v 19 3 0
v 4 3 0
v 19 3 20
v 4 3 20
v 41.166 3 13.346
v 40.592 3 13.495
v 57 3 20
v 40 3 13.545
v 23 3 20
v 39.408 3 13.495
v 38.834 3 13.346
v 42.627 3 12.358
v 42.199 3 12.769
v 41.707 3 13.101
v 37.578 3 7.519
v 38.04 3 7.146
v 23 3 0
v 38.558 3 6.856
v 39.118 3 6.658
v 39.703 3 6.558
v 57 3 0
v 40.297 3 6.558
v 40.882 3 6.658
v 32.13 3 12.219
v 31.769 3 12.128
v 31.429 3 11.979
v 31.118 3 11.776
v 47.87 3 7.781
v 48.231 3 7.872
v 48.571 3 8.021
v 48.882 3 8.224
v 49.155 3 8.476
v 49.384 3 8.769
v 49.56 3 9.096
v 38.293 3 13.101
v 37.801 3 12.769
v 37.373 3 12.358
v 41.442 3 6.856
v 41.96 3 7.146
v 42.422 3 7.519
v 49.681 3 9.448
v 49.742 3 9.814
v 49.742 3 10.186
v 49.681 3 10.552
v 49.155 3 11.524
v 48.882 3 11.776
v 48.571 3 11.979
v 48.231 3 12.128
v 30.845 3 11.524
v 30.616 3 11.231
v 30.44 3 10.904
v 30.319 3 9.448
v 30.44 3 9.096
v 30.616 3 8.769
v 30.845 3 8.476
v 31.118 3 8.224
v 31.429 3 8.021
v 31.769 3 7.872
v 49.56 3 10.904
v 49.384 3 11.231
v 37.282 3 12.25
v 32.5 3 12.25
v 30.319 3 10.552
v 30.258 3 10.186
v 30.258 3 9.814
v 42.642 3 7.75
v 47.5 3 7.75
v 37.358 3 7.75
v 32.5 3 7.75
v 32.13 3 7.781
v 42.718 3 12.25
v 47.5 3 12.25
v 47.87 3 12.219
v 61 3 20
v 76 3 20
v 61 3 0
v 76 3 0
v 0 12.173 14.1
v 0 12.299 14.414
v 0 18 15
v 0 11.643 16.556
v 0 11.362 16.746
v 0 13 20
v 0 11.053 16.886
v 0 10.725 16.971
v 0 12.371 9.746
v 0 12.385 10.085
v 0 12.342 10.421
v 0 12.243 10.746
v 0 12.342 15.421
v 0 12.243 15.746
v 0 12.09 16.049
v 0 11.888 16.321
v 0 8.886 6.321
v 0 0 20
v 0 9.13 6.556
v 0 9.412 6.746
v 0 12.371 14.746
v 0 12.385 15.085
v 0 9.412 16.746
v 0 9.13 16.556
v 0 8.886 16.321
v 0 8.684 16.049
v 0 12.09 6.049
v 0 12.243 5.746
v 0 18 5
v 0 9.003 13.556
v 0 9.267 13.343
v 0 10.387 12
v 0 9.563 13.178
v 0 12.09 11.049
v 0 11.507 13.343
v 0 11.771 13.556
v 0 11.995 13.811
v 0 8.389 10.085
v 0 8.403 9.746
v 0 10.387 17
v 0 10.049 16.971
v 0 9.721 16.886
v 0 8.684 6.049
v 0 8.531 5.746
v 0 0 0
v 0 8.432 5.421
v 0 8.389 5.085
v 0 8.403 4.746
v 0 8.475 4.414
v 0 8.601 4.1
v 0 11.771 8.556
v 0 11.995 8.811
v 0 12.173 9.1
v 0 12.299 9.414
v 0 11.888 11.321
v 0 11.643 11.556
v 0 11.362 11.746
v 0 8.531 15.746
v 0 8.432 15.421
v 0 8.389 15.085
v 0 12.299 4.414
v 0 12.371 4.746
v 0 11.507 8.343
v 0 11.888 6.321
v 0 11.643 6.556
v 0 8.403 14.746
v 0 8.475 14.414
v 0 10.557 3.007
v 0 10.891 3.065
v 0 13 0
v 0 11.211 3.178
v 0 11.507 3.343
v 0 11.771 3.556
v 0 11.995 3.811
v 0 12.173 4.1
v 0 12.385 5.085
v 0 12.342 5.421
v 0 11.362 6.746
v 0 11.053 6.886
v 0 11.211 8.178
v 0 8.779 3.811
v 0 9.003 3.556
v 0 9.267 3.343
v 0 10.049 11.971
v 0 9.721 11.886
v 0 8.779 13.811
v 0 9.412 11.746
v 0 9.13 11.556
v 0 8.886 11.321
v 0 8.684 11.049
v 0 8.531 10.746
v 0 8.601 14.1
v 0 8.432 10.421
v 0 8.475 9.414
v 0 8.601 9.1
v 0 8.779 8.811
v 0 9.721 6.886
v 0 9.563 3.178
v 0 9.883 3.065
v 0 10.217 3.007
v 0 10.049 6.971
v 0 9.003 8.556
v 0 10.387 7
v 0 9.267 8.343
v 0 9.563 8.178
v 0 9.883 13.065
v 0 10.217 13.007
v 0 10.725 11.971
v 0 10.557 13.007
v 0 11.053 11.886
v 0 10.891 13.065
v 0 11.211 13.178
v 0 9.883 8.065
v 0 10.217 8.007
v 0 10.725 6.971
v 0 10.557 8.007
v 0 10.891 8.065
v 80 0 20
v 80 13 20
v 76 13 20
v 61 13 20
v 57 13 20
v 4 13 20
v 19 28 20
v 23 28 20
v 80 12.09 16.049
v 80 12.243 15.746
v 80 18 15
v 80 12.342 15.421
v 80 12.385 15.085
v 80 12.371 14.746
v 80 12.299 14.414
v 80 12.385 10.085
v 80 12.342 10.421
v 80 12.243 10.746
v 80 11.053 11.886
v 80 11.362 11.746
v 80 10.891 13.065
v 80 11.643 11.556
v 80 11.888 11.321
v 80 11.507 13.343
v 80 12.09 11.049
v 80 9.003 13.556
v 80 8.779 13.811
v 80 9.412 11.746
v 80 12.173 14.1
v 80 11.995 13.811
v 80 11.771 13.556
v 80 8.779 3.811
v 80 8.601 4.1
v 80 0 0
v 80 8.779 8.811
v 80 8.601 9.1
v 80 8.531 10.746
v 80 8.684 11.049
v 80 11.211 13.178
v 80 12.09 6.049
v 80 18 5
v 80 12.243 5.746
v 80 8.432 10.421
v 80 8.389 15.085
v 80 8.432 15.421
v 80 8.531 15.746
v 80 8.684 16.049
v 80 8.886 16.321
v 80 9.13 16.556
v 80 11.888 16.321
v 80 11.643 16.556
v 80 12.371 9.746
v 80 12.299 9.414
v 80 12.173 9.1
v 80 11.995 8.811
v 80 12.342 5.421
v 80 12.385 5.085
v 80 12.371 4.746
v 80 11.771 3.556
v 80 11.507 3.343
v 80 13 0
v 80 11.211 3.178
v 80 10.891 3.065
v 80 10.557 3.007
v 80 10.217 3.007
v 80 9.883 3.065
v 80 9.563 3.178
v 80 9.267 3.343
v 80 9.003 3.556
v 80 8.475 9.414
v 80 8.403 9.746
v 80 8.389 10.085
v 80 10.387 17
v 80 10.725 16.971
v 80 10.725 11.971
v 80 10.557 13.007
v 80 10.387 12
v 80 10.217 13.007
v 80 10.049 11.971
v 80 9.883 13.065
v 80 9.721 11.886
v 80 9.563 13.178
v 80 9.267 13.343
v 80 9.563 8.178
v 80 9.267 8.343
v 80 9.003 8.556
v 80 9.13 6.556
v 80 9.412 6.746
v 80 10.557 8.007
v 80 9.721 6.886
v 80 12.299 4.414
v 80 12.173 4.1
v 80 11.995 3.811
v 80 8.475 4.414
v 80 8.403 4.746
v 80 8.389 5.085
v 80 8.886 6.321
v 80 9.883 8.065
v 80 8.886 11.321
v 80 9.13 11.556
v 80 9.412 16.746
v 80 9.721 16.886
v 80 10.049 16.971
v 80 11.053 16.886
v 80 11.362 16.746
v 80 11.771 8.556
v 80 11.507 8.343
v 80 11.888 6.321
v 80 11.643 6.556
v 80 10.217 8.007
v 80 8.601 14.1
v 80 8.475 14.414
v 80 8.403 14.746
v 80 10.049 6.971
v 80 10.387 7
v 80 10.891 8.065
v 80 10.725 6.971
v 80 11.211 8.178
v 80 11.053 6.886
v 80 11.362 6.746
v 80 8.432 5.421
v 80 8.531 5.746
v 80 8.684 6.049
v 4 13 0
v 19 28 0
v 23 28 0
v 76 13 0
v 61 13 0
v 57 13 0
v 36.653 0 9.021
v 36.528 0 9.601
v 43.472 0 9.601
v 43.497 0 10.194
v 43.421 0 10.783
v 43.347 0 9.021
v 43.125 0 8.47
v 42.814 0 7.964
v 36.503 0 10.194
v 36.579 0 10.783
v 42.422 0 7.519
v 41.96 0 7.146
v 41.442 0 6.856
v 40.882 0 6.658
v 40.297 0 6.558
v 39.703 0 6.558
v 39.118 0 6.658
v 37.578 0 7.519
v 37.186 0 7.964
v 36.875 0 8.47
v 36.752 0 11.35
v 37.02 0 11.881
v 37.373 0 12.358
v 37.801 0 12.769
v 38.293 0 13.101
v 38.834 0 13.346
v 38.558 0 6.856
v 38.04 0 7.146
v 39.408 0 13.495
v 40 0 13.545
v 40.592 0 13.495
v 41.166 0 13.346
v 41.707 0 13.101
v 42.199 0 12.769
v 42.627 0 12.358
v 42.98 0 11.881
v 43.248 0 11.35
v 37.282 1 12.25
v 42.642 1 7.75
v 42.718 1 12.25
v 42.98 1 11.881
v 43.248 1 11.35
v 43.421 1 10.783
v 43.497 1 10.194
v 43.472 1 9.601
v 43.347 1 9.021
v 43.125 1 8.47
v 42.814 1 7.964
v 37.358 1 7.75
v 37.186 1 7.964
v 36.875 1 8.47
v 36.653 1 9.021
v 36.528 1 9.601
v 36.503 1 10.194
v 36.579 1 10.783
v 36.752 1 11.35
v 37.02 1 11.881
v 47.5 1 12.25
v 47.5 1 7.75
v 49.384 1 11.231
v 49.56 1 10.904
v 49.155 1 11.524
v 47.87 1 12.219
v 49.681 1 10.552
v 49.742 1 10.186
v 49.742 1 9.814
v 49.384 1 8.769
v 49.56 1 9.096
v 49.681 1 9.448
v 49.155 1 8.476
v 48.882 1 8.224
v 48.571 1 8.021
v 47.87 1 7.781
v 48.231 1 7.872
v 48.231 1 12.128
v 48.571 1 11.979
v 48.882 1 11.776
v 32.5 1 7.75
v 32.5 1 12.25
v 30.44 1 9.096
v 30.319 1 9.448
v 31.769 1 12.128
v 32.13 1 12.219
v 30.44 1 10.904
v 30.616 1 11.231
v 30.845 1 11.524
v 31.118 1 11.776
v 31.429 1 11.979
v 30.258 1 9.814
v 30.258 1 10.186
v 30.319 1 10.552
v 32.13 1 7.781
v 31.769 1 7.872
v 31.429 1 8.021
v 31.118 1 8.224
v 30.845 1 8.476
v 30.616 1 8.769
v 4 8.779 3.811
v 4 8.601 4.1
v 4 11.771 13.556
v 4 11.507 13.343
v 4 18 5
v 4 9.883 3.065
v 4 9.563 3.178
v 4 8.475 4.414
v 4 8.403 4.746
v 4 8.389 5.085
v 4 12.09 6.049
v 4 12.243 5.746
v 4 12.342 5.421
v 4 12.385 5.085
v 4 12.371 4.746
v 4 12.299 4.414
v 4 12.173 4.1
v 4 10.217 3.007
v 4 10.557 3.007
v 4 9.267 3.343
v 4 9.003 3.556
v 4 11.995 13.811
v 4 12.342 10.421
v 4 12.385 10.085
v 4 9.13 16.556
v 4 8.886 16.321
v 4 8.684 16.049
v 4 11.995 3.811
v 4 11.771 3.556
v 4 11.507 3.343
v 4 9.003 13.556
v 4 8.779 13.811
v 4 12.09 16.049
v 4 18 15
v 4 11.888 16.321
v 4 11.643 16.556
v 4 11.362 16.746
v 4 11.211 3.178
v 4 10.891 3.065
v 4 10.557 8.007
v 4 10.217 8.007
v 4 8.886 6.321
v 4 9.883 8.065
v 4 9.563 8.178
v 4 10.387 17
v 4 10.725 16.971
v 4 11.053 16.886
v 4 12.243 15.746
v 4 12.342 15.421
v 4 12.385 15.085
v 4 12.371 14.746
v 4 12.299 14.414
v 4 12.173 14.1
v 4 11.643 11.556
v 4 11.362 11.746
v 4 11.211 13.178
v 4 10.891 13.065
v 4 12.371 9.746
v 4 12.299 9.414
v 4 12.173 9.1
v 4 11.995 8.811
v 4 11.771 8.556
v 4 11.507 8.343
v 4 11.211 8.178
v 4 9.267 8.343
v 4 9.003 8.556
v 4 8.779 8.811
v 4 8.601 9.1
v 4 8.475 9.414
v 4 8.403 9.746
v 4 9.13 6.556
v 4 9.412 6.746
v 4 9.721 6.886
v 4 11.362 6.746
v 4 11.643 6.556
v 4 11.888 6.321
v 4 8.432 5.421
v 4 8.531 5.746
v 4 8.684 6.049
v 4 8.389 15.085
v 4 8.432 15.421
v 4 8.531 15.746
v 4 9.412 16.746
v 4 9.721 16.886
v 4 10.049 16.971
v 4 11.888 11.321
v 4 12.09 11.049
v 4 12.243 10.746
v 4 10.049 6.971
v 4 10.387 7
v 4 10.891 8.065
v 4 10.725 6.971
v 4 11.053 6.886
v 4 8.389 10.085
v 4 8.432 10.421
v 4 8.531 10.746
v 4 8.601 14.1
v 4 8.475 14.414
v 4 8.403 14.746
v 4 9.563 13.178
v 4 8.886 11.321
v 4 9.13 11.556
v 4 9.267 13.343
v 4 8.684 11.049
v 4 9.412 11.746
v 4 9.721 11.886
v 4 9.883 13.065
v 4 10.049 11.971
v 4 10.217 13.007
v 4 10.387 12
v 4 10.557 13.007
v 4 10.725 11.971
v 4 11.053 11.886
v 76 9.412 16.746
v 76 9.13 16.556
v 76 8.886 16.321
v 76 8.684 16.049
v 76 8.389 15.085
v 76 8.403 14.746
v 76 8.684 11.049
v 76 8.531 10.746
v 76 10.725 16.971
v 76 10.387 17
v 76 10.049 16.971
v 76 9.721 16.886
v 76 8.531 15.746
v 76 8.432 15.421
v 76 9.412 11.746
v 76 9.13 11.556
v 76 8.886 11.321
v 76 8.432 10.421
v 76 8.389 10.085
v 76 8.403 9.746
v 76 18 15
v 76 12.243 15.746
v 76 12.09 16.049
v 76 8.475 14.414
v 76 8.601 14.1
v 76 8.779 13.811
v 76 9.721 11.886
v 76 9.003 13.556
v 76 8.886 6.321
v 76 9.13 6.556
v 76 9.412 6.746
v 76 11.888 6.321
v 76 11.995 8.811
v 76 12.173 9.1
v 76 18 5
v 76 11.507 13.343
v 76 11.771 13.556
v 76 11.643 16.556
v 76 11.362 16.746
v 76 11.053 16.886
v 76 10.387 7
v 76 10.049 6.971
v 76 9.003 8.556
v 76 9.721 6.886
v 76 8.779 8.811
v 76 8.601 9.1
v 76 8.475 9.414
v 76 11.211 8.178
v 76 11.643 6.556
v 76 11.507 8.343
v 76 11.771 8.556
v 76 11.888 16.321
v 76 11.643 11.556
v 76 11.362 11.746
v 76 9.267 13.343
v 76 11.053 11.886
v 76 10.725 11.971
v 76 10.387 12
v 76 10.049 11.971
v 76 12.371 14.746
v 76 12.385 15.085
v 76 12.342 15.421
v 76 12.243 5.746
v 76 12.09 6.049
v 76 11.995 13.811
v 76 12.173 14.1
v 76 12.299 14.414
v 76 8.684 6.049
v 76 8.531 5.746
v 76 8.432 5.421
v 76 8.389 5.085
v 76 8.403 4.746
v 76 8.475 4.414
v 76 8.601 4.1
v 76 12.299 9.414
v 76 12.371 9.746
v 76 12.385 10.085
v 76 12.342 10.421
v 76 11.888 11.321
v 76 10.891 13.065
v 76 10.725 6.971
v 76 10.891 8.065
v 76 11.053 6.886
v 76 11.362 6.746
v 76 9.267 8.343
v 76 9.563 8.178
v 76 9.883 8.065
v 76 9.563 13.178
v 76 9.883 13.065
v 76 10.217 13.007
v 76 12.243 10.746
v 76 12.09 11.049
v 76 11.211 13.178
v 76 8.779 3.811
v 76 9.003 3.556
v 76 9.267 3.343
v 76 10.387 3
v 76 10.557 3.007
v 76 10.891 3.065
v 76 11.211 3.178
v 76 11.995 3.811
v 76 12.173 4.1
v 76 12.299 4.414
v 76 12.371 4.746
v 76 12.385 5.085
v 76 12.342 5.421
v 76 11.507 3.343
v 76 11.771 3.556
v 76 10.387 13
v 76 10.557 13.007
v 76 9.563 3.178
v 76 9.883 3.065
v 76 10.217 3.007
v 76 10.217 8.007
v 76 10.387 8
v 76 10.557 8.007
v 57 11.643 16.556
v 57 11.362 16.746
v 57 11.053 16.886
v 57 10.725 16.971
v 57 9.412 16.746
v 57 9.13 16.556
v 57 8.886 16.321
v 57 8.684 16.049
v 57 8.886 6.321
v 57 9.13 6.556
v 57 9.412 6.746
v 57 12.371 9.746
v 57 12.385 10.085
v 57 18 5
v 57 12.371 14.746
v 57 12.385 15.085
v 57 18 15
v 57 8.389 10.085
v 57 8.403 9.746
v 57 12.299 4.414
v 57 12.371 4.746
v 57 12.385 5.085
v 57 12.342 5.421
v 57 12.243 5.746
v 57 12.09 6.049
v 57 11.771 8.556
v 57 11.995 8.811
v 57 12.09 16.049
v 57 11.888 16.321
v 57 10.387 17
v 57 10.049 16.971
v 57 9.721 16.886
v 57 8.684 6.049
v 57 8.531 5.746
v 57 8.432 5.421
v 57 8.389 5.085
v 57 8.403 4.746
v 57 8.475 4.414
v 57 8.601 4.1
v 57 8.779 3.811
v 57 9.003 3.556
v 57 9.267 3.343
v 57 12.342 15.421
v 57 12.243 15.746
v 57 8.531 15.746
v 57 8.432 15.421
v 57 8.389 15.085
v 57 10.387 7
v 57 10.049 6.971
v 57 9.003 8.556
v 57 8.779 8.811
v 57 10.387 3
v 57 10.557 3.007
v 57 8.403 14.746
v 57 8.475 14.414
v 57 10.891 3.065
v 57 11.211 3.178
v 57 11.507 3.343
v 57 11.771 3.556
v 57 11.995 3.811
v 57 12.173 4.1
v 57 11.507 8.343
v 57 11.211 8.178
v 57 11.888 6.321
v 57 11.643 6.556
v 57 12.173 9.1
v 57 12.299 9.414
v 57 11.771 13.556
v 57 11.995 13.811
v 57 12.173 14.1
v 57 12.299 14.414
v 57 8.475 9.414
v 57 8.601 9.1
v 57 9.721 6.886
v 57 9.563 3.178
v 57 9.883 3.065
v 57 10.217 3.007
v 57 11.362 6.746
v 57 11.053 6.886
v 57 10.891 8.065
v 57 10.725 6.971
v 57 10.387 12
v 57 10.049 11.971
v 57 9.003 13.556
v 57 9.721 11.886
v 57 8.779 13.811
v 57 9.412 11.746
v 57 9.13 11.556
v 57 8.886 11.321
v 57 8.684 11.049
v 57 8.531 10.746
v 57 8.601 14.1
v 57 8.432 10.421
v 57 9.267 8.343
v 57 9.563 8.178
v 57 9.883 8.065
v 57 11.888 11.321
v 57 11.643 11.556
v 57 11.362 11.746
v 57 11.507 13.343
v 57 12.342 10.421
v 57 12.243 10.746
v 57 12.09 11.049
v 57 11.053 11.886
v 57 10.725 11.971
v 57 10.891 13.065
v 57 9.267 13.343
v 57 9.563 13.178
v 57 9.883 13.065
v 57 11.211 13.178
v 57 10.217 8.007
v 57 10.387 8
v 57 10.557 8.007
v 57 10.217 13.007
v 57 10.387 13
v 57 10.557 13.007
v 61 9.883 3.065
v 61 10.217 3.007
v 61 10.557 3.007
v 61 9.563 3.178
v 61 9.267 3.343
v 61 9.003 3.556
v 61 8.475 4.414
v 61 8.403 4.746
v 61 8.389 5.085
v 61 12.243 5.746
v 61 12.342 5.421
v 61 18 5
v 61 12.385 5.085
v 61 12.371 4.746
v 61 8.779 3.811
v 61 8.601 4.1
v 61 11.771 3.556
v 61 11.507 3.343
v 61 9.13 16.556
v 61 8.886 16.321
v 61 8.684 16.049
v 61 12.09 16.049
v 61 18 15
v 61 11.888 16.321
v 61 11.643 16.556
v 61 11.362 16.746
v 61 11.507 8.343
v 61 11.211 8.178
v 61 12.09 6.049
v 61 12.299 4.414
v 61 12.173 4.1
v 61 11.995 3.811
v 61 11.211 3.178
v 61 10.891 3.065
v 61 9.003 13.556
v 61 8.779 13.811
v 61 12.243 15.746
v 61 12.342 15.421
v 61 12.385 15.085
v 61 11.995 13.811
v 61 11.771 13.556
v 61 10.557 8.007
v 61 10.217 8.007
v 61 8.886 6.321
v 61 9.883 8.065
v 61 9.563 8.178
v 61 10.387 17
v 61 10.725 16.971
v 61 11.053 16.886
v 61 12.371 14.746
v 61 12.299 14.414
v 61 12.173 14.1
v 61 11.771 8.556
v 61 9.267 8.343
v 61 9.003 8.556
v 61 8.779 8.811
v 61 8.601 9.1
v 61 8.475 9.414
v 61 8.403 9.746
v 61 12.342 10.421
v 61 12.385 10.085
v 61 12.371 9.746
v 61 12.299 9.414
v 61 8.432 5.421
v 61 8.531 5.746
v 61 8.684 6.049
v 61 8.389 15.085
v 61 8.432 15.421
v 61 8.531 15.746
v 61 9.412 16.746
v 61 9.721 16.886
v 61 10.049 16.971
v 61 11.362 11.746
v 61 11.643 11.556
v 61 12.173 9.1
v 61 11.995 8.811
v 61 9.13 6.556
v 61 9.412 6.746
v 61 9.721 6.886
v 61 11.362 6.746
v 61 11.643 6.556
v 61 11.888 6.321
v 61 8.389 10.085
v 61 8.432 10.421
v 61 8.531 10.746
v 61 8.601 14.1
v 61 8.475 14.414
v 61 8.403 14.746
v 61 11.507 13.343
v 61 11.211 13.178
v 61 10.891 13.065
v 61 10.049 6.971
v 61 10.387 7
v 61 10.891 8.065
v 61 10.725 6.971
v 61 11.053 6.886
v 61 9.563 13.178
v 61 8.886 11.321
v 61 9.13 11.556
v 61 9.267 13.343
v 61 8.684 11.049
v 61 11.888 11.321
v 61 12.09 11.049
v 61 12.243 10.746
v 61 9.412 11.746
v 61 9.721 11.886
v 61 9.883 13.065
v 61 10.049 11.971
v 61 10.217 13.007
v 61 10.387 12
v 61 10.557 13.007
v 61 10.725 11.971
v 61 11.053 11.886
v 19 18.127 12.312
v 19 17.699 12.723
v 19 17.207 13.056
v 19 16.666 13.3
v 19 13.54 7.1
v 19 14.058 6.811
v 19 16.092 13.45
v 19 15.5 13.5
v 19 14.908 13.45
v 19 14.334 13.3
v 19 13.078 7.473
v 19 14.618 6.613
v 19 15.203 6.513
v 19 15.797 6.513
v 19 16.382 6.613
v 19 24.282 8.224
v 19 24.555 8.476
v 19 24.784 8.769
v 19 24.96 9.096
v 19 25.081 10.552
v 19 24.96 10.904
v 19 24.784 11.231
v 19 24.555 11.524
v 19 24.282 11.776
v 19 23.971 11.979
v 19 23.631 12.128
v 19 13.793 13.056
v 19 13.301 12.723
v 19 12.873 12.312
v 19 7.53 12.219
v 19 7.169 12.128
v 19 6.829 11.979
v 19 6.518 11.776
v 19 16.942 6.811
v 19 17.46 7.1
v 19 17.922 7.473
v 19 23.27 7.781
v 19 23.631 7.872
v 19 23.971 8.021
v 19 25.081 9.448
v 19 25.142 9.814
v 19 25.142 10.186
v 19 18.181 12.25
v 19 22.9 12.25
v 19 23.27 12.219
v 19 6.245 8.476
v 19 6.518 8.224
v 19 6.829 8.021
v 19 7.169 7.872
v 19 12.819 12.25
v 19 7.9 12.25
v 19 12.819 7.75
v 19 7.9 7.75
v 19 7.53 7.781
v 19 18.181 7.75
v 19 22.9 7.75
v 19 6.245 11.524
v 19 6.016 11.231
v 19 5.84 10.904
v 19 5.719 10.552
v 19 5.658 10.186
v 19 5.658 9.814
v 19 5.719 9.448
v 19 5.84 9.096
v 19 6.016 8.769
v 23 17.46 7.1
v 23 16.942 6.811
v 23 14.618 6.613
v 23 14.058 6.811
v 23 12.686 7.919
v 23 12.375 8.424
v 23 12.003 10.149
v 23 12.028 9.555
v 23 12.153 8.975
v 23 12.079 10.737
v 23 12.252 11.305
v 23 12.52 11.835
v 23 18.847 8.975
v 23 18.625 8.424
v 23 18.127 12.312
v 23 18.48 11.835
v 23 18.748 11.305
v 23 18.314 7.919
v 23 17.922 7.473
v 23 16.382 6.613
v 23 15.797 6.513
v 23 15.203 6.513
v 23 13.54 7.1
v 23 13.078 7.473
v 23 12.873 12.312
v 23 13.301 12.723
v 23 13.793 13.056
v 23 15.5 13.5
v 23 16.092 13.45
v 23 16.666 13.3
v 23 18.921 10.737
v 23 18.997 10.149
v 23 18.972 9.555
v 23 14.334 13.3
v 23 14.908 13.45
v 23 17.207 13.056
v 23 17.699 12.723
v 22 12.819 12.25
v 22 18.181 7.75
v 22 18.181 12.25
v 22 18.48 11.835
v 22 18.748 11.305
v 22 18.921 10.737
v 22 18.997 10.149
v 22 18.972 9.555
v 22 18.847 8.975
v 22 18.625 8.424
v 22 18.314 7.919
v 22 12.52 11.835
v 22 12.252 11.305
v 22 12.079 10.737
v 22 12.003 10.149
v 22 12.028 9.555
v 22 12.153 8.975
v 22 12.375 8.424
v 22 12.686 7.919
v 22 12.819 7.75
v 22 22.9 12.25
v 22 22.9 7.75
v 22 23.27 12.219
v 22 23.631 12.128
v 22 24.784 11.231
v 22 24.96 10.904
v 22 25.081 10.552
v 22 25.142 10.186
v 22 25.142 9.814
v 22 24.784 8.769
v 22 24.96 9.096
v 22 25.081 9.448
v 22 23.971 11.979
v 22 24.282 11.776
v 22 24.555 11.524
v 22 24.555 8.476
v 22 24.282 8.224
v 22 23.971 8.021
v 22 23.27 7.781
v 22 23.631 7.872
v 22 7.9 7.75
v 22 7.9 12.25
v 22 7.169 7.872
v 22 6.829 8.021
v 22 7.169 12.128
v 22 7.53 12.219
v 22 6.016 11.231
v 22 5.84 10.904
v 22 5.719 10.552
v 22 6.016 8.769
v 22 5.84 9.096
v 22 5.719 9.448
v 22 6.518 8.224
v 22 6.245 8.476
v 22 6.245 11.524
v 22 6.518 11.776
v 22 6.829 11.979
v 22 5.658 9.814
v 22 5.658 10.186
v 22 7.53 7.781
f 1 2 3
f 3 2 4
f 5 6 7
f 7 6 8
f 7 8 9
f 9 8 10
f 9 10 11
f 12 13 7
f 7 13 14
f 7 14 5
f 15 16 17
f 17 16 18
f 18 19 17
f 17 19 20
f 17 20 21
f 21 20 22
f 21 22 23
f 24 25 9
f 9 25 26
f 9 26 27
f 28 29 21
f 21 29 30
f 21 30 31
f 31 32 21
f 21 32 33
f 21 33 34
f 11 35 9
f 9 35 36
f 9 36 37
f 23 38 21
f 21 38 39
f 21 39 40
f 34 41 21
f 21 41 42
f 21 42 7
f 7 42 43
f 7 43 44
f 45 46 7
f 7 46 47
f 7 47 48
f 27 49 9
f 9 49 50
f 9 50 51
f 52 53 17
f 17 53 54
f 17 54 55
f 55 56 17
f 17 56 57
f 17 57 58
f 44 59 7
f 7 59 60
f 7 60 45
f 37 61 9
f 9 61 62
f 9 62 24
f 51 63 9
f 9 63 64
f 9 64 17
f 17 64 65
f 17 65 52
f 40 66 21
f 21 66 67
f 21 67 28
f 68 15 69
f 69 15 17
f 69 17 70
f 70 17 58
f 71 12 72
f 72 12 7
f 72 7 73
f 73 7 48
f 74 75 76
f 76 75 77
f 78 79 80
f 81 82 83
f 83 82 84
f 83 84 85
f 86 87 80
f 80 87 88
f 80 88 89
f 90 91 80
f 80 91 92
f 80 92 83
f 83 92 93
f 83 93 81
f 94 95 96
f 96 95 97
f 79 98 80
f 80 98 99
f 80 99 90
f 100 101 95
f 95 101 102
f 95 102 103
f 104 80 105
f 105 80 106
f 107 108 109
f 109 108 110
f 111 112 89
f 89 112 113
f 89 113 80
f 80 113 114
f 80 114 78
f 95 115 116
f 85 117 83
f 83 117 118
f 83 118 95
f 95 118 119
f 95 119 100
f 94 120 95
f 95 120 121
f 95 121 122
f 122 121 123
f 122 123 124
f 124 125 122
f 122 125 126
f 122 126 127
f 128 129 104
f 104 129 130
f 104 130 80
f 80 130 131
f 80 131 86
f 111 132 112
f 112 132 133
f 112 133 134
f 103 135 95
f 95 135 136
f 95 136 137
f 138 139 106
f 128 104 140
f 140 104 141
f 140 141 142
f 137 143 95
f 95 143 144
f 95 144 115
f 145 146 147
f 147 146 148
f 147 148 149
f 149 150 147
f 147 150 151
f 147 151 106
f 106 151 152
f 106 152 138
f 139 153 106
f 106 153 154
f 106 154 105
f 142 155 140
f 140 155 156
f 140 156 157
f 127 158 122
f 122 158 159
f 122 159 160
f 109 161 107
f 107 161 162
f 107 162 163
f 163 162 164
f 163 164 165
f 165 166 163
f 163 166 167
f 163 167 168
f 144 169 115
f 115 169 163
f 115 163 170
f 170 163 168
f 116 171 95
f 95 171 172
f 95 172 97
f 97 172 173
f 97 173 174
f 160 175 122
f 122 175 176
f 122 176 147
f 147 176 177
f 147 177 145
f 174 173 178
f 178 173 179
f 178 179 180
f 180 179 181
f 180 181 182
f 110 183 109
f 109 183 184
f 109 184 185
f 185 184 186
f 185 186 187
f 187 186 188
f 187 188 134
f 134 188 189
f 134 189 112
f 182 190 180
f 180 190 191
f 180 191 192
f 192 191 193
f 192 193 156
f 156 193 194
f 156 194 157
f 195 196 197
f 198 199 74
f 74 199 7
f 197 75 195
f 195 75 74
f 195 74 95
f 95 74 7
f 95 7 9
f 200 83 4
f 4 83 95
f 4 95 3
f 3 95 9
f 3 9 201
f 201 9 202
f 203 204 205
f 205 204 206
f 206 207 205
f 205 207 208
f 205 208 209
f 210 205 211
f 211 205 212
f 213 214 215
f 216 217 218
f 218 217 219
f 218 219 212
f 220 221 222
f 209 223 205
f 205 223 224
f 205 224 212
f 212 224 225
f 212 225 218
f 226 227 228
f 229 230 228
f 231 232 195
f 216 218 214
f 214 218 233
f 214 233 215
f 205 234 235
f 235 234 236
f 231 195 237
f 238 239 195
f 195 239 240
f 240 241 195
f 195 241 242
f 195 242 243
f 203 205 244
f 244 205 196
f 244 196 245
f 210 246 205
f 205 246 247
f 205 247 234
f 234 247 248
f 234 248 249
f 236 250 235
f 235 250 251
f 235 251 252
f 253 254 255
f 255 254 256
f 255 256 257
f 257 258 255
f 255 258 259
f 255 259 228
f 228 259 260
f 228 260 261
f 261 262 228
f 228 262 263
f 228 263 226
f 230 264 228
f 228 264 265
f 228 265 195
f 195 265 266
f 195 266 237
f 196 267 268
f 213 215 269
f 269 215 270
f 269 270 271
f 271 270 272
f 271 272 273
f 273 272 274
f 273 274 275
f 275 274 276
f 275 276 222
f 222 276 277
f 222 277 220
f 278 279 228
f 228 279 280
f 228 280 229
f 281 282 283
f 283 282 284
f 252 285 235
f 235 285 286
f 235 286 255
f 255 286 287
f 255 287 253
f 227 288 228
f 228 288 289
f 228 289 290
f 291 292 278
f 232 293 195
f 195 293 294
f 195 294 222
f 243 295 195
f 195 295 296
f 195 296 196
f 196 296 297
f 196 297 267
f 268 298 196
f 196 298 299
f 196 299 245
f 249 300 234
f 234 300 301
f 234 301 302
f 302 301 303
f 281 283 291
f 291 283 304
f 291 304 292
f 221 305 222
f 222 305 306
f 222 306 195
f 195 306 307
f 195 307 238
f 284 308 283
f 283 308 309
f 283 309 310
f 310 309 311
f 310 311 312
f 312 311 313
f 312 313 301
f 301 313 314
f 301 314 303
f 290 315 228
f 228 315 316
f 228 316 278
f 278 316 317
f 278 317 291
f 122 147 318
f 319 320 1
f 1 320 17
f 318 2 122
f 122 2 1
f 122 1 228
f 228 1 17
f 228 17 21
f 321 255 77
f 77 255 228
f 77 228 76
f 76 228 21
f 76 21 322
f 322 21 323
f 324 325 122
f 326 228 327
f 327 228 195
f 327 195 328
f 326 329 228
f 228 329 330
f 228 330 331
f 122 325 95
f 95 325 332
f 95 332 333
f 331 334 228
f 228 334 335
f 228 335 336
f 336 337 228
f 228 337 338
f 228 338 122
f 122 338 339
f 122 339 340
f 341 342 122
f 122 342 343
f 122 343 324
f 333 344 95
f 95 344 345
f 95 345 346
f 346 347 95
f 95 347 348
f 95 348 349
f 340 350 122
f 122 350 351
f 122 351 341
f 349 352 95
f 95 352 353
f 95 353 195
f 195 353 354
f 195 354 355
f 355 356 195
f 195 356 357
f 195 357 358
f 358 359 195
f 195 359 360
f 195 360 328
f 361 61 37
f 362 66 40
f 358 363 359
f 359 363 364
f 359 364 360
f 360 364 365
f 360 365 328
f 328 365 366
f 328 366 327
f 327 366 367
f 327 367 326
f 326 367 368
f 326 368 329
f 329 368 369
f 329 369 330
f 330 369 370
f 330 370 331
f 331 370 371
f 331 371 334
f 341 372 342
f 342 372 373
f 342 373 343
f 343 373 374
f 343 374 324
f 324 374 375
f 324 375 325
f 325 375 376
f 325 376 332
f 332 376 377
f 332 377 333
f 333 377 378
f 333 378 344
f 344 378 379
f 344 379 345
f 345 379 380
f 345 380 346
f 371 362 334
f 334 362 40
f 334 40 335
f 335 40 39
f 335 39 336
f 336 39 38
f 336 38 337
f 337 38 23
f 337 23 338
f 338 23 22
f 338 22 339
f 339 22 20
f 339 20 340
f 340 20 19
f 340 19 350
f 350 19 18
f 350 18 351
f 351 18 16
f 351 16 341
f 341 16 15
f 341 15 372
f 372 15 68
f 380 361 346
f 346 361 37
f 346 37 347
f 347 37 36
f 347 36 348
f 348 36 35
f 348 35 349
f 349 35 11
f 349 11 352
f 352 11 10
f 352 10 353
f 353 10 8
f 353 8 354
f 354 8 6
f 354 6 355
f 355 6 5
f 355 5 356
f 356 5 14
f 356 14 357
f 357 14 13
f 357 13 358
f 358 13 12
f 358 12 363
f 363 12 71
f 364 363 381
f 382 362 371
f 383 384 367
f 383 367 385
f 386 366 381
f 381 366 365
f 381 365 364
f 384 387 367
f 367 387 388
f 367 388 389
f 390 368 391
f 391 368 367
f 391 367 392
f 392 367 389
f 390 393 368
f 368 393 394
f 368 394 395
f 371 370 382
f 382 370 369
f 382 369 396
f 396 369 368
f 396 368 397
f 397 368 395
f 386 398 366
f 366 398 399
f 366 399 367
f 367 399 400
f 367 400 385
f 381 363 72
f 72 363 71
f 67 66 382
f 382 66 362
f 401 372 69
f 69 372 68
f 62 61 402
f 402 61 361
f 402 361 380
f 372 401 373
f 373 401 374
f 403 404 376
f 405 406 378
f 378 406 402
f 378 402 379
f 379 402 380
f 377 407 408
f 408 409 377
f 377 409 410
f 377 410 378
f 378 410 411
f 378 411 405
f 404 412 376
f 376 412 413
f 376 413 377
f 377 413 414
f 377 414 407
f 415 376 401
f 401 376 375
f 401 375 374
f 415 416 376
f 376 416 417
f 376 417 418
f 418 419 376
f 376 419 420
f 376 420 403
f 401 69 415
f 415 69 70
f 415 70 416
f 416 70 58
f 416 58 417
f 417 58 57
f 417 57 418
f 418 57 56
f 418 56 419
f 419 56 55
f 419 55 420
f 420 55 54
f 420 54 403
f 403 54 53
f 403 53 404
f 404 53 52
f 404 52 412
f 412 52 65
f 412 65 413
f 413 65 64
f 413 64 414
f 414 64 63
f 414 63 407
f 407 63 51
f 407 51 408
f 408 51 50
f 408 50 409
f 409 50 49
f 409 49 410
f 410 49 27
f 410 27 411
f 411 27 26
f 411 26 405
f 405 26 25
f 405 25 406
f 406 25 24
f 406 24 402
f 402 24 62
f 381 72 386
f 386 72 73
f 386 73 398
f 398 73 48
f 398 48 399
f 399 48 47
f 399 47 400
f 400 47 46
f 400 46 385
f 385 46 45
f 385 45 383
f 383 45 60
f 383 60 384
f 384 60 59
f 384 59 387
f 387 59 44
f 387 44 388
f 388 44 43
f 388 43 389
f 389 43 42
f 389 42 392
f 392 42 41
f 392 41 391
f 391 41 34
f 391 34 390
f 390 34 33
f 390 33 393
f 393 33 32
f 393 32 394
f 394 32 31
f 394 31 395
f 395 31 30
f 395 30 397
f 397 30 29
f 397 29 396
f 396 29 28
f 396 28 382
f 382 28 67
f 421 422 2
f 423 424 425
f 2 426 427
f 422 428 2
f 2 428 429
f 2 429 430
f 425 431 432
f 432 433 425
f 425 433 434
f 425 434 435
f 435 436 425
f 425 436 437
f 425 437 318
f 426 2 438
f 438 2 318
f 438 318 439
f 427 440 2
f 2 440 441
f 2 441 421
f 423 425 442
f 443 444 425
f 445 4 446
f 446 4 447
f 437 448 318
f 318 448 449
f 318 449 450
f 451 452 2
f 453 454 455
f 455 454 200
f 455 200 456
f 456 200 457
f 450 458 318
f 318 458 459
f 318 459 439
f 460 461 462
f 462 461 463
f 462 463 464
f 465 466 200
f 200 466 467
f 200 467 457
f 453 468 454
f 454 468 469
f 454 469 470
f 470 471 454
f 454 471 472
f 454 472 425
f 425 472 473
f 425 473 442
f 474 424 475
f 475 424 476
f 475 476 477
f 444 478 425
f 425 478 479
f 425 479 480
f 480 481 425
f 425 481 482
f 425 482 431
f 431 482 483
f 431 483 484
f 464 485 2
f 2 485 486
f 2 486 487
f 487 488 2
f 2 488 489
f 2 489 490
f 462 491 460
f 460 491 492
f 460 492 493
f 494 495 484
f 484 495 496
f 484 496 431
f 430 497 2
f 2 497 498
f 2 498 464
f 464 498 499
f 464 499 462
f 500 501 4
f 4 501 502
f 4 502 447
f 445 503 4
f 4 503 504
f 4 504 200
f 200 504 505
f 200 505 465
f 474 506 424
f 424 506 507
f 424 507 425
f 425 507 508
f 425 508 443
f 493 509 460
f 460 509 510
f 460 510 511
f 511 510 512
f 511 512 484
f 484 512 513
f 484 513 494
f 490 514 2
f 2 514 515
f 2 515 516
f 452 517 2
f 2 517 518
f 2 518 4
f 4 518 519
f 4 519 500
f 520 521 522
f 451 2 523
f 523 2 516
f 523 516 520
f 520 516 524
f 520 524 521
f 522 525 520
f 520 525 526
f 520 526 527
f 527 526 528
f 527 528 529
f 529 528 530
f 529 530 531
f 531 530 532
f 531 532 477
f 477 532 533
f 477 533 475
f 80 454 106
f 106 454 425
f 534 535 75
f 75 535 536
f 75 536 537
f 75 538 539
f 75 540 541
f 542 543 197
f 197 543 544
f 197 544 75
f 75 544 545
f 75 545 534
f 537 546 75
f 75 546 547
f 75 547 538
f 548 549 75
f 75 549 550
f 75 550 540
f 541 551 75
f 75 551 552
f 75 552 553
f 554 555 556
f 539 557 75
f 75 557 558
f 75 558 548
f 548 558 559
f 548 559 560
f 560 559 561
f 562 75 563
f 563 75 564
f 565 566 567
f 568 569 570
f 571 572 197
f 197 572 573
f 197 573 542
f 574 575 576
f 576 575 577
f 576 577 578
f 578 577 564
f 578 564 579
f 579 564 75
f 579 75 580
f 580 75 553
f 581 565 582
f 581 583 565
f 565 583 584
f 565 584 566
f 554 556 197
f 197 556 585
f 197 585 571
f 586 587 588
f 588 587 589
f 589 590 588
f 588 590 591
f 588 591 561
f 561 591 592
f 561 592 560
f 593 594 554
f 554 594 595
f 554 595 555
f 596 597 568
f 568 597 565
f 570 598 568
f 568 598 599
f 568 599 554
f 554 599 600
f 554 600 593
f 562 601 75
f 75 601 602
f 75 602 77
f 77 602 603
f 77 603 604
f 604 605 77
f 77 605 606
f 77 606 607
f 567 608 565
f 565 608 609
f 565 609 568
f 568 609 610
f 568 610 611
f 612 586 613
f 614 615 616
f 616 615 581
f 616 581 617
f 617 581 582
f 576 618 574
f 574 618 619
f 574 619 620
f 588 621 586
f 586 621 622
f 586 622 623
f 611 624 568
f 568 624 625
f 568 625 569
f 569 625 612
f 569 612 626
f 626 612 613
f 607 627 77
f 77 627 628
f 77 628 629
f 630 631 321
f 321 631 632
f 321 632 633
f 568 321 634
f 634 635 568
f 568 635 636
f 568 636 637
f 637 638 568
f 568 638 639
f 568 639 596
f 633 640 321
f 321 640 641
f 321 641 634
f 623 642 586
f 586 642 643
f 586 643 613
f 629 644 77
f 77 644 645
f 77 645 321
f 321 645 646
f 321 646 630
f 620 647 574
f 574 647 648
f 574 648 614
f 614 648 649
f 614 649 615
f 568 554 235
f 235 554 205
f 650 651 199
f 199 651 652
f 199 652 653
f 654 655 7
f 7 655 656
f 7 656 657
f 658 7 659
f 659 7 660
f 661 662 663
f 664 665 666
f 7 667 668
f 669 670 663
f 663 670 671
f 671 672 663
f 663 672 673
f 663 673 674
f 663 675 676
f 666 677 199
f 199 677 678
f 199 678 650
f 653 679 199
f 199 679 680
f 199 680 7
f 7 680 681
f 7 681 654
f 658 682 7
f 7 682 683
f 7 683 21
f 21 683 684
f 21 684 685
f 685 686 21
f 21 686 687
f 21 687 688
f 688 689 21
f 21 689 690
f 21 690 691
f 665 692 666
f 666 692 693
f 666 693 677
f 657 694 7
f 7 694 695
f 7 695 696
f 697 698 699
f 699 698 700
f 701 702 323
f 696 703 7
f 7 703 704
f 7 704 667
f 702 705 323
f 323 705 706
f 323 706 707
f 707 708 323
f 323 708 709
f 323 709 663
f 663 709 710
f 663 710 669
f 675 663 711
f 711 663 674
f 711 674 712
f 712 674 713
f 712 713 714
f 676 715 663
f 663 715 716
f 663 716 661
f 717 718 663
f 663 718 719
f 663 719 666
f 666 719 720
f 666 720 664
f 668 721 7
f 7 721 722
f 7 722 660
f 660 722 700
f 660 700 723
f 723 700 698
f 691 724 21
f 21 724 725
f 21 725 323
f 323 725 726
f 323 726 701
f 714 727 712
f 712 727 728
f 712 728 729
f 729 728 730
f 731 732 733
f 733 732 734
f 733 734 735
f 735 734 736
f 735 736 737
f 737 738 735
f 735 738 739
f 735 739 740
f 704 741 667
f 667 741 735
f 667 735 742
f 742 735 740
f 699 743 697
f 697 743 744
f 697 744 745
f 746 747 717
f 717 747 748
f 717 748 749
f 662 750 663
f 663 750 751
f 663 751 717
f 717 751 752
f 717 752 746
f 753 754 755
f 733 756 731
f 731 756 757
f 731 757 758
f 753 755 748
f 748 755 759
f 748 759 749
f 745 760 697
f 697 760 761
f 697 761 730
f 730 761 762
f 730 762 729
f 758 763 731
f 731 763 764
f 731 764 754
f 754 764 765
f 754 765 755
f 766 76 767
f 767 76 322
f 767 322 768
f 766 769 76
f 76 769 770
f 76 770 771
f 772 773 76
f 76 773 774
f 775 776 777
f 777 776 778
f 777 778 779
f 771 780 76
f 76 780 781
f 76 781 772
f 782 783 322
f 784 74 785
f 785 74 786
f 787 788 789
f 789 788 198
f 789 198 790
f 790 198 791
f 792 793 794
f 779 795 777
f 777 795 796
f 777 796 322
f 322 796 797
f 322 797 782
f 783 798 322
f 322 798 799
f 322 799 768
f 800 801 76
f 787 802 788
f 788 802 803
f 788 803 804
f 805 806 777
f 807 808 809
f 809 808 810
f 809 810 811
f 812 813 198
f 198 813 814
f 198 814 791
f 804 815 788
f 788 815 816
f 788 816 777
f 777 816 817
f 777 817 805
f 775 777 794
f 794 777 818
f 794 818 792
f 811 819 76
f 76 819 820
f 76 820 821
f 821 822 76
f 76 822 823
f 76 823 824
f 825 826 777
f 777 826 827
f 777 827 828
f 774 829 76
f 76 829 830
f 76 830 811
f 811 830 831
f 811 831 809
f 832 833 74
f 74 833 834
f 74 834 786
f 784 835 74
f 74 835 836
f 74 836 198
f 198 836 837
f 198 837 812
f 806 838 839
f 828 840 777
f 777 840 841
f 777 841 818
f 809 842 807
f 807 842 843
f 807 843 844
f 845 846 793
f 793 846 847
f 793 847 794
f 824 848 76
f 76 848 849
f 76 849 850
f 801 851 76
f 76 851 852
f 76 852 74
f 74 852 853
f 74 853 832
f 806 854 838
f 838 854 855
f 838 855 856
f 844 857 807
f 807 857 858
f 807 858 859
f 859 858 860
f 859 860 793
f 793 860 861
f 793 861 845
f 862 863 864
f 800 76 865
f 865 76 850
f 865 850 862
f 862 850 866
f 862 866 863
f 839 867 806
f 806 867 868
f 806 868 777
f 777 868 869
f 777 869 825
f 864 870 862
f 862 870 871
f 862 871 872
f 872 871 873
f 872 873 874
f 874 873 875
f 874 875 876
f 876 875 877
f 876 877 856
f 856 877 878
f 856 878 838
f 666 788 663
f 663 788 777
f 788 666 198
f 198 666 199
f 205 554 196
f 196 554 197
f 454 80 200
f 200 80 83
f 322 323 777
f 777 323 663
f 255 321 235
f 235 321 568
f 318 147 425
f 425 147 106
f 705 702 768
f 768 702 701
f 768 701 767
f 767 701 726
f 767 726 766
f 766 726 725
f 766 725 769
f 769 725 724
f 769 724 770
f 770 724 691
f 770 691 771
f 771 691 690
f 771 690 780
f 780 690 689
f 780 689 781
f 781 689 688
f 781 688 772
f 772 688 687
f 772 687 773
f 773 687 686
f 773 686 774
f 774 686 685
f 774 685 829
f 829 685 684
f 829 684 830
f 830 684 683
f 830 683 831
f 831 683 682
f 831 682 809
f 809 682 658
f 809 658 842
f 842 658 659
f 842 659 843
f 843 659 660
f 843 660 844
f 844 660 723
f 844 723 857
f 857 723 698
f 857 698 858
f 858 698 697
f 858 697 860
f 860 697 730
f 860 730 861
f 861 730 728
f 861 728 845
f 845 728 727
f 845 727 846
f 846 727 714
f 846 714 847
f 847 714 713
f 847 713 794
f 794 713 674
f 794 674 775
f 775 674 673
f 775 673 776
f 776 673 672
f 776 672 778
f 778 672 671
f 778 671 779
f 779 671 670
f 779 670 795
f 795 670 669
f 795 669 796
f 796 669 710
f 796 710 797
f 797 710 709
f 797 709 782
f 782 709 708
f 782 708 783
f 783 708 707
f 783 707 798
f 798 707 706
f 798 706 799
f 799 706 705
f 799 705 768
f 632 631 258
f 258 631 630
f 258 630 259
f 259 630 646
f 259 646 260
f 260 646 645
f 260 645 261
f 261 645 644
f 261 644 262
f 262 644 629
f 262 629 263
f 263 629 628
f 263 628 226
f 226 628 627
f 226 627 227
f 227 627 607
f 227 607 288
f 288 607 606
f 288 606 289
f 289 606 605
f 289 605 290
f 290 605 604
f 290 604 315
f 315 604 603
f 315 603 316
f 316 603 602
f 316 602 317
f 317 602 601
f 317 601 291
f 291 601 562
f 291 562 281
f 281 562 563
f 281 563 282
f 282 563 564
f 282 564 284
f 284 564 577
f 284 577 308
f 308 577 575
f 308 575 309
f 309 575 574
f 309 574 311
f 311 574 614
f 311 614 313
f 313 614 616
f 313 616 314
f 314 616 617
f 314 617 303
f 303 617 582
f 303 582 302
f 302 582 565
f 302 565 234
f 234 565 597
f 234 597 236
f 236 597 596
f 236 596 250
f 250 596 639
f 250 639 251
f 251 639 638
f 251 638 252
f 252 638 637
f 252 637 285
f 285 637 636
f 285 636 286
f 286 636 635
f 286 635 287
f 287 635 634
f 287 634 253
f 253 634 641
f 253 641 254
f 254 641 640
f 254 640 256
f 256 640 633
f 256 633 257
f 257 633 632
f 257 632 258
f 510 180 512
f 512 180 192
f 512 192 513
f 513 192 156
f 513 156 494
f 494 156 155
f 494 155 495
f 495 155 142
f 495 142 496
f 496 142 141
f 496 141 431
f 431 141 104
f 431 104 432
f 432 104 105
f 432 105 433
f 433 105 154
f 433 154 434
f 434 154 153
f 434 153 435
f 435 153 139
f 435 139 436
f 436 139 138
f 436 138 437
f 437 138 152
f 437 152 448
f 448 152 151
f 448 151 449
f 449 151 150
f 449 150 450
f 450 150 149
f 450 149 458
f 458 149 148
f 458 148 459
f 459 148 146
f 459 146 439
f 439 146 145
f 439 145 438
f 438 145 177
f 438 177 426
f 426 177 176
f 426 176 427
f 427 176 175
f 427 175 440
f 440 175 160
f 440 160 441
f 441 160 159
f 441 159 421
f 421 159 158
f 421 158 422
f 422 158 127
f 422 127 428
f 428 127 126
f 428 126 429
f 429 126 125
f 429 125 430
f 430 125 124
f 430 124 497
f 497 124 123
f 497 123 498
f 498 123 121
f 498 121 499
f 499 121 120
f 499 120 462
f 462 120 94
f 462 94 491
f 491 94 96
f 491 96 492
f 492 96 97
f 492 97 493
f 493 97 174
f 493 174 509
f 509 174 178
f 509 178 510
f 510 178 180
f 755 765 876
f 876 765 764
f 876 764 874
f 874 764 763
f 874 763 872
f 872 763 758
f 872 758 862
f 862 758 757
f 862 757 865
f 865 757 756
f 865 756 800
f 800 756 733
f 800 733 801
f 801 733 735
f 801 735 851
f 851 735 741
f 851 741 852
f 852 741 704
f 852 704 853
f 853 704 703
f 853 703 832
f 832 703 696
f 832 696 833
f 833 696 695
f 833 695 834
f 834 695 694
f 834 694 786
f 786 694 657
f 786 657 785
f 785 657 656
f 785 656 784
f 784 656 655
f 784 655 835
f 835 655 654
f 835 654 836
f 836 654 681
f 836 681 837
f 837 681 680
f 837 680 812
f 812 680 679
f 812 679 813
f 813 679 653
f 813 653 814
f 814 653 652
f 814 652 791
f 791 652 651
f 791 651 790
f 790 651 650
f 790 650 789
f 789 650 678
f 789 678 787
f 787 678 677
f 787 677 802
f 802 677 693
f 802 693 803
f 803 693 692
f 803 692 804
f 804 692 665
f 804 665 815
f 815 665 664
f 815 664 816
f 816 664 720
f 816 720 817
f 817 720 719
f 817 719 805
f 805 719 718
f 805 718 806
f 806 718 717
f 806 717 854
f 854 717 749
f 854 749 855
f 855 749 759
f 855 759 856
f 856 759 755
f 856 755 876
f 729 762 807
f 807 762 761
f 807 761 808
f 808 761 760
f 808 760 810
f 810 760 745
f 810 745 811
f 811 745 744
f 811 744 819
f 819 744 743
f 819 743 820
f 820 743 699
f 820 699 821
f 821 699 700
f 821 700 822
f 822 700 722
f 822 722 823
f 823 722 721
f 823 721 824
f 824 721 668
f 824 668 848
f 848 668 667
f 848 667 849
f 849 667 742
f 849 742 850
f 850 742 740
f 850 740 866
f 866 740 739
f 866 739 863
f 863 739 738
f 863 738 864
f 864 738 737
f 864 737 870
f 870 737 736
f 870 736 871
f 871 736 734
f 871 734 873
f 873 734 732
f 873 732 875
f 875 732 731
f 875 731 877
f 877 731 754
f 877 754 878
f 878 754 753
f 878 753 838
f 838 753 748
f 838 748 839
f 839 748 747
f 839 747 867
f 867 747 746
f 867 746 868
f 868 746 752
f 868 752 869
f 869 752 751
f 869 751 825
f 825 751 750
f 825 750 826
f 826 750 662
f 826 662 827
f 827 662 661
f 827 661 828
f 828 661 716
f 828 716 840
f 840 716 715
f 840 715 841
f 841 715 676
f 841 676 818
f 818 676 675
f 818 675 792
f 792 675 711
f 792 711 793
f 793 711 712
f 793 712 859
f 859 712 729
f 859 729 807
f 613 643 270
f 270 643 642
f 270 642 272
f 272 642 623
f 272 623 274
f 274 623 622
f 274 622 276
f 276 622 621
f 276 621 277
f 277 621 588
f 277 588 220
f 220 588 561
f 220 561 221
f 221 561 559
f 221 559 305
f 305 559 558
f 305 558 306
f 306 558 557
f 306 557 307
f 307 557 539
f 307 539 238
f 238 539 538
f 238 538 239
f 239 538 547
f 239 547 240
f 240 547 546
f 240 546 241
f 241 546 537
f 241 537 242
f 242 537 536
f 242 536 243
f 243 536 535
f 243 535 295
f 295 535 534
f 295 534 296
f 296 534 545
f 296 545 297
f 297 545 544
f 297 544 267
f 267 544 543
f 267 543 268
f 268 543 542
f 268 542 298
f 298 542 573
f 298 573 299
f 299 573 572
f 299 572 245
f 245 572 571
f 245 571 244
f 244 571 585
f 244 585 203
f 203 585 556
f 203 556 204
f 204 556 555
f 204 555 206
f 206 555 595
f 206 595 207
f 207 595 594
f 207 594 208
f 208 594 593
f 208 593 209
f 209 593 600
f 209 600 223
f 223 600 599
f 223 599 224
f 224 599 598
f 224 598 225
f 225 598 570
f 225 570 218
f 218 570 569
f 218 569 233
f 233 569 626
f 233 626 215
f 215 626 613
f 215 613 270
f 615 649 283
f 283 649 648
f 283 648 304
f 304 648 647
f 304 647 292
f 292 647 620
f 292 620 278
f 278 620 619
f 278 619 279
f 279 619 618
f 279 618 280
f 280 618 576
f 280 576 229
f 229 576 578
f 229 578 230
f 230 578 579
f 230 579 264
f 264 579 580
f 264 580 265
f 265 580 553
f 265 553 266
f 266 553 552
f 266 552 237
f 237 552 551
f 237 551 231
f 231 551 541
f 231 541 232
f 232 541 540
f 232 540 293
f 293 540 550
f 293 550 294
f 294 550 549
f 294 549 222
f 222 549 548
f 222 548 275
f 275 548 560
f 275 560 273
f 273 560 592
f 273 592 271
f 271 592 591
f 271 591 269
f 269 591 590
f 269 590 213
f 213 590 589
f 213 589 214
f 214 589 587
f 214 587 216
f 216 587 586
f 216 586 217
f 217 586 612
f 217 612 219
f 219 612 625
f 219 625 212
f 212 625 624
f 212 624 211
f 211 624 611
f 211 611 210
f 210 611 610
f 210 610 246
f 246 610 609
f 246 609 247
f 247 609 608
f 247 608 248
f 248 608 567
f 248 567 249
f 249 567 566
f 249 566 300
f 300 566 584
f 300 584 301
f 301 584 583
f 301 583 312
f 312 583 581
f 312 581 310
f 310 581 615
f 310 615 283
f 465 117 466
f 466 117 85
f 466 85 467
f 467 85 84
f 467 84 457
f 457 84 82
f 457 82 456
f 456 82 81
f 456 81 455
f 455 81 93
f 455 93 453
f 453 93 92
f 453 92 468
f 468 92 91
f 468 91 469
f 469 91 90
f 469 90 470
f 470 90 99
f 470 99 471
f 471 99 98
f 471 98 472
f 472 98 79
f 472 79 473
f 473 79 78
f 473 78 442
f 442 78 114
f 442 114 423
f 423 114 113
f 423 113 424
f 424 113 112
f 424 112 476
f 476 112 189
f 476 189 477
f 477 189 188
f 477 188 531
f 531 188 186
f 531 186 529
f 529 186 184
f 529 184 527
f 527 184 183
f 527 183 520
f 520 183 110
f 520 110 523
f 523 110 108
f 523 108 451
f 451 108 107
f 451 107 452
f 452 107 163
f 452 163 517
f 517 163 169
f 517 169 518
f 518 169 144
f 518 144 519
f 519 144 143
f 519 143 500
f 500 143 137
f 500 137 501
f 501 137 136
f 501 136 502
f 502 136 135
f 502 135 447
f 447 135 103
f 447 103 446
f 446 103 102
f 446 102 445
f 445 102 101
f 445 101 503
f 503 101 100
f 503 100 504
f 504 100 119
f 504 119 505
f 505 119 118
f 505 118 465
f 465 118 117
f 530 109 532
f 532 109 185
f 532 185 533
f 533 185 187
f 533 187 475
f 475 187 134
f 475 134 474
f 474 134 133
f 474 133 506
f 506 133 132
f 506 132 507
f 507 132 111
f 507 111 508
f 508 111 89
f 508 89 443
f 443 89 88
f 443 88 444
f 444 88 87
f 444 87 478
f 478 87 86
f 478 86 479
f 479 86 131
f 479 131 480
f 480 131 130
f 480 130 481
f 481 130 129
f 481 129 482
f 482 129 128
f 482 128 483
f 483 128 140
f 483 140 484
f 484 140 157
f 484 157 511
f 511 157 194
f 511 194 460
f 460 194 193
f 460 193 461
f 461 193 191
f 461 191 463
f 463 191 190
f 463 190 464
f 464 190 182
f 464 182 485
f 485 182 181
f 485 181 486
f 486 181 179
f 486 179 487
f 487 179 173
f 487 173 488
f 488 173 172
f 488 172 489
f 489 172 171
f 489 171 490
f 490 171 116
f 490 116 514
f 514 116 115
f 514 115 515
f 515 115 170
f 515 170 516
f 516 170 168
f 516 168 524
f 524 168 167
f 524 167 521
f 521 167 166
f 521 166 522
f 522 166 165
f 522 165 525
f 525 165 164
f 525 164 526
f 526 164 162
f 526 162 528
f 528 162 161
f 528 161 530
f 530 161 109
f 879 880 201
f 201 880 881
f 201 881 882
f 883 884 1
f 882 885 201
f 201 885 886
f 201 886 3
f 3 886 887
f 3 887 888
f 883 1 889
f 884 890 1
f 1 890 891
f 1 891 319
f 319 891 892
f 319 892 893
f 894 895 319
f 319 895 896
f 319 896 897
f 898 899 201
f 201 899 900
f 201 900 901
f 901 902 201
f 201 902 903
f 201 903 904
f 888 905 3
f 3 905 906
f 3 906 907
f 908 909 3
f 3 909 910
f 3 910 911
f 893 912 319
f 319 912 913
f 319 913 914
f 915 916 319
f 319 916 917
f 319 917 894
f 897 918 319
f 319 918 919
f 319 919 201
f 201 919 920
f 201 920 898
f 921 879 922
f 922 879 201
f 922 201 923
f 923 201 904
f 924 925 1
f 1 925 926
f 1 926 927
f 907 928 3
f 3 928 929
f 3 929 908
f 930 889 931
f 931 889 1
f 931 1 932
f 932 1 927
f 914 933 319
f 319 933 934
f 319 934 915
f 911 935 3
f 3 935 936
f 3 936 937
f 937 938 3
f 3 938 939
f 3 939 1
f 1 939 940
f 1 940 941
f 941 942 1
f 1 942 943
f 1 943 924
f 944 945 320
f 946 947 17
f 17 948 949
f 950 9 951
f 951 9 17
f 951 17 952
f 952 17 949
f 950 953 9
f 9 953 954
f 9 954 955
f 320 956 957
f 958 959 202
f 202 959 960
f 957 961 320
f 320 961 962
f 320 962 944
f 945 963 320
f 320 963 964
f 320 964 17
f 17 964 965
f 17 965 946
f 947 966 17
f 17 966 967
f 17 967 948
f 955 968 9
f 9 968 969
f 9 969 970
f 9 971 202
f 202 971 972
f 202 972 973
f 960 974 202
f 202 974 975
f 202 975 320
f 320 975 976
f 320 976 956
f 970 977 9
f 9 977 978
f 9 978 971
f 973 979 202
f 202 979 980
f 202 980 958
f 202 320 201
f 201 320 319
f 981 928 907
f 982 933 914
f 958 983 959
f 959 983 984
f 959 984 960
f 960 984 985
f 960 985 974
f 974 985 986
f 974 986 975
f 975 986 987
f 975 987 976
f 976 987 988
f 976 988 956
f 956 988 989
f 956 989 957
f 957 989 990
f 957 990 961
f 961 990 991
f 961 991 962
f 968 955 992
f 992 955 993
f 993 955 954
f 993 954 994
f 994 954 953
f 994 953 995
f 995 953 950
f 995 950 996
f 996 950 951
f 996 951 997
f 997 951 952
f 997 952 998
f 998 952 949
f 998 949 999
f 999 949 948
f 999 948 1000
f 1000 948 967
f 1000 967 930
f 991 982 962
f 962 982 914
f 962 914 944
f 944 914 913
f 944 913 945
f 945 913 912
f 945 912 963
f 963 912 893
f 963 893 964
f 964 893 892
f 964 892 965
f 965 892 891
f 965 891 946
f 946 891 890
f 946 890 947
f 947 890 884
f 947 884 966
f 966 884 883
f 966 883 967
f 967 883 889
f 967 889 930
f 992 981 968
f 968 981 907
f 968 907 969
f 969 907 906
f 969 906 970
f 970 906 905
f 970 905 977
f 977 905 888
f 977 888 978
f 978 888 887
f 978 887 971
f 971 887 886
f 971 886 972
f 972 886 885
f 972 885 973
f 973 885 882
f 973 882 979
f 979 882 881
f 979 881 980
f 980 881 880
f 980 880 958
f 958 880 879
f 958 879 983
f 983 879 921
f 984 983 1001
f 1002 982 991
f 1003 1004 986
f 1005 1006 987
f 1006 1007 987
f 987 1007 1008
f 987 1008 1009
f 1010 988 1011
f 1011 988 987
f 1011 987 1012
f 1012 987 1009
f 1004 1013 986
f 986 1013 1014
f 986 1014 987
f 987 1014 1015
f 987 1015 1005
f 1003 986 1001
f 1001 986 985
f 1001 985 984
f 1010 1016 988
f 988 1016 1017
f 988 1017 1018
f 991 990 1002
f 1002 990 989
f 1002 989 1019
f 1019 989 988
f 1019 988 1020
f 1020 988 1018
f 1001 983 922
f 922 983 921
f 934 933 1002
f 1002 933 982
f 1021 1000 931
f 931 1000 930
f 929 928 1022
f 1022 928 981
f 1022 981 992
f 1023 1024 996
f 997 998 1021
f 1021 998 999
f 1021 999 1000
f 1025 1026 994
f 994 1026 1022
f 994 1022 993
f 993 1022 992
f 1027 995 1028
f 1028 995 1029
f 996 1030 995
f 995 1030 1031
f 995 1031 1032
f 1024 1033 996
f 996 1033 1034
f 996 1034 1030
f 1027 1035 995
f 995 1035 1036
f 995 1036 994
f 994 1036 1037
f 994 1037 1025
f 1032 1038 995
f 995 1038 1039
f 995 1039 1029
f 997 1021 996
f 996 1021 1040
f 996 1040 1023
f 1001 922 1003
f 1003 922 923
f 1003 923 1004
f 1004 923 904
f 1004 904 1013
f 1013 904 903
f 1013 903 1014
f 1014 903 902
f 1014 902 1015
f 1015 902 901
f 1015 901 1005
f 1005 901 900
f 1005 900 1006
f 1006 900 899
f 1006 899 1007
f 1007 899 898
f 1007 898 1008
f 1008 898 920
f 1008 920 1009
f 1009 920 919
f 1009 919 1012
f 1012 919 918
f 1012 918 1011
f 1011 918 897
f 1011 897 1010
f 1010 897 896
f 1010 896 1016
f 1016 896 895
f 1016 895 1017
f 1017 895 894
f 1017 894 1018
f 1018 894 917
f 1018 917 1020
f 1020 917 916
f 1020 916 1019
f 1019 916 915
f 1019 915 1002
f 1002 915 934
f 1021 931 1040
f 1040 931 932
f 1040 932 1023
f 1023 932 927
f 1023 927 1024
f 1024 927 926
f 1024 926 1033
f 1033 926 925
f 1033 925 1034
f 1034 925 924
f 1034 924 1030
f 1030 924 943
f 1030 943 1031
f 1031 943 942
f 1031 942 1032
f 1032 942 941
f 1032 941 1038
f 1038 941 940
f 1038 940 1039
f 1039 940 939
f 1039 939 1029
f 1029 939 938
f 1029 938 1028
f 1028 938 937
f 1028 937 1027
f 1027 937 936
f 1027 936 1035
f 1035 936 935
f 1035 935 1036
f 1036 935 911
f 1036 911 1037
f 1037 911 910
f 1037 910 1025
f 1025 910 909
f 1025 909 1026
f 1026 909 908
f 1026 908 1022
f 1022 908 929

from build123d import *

# Parameters (mm, degrees)
SKETCH_1_W          = 80
SKETCH_1_H          = 20
EXTRUDE_1_DEPTH     = 3
SKETCH_2_R          = 3.5
CUT_EXTRUDE_1_DEPTH = 3
SKETCH_3_W          = 15
SKETCH_3_H          = 4.5
CUT_EXTRUDE_2_DEPTH = 2
SKETCH_5_R          = 2.25
CUT_EXTRUDE_3_DEPTH = 2
SKETCH_6_W          = 4
SKETCH_6_H          = 20
EXTRUDE_2_DEPTH     = 15
CUT_EXTRUDE_4_DEPTH = 83
SKETCH_8_R          = 2
CUT_EXTRUDE_5_DEPTH = 83
SKETCH_9_W          = 4
SKETCH_9_H          = 20
EXTRUDE_3_DEPTH     = 25
SKETCH_10_R         = 3.5
CUT_EXTRUDE_6_DEPTH = 6
SKETCH_11_W         = 4.5
SKETCH_11_H         = 15
CUT_EXTRUDE_7_DEPTH = 3
SKETCH_12_R         = 2.25
CUT_EXTRUDE_8_DEPTH = 3


with BuildPart() as part:
    # 草图1 → 凸台-拉伸1 (new body)
    with BuildSketch(Plane(origin=(0, 0, 0), x_dir=(1, 0, 0), z_dir=(0, 1, 0))):
        with Locations((40, -10)):
            Rectangle(SKETCH_1_W, SKETCH_1_H)
    extrude(amount=EXTRUDE_1_DEPTH)

    # 草图2 → 切除-拉伸1 (cut)
    with BuildSketch(Plane(origin=(0, 3, 0), x_dir=(1, 0, 0), z_dir=(0, 1, 0))):
        with Locations(Location((40, -10.045477327, 0), (0, 0, 270))):
            Circle(SKETCH_2_R)
    extrude(amount=-CUT_EXTRUDE_1_DEPTH, mode=Mode.SUBTRACT)

    # 草图3 → 切除-拉伸2 (cut)
    with BuildSketch(Plane(origin=(0, 3, 0), x_dir=(1, 0, 0), z_dir=(0, 1, 0))):
        with Locations((40, -10)):
            Rectangle(SKETCH_3_W, SKETCH_3_H)
    extrude(amount=-CUT_EXTRUDE_2_DEPTH, mode=Mode.SUBTRACT)

    # 草图5 → 切除-拉伸3 (cut)
    with BuildSketch(Plane(origin=(0, 3, 0), x_dir=(1, 0, 0), z_dir=(0, 1, 0))):
        with Locations((32.5, -10)):
            Circle(SKETCH_5_R)
        with Locations((47.5, -10)):
            Circle(SKETCH_5_R)
    extrude(amount=-CUT_EXTRUDE_3_DEPTH, mode=Mode.SUBTRACT)

    # 草图6 → 凸台-拉伸2 (add)
    with BuildSketch(Plane(origin=(0, 3, 0), x_dir=(1, 0, 0), z_dir=(0, 1, 0))):
        with Locations((2, -10)):
            Rectangle(SKETCH_6_W, SKETCH_6_H)
        with Locations((78, -10)):
            Rectangle(SKETCH_6_W, SKETCH_6_H)
        with Locations((59, -10)):
            Rectangle(SKETCH_6_W, SKETCH_6_H)
    extrude(amount=EXTRUDE_2_DEPTH)

    # 草图7 → 切除-拉伸4 (cut)
    with BuildSketch(Plane(origin=(80, 0, 0), x_dir=(0, 0, -1), z_dir=(1, 0, 0))):
        Polygon((-20, 13), (-15, 18), (-20, 18), align=None)
        Polygon((0, 13), (0, 18), (-5, 18), align=None)
    extrude(amount=-CUT_EXTRUDE_4_DEPTH, mode=Mode.SUBTRACT)

    # 草图8 → 切除-拉伸5 (cut)
    with BuildSketch(Plane.ZY):
        with Locations((5, 10.386894075)):
            Circle(SKETCH_8_R)
        with Locations((10, 10.386894075)):
            Circle(SKETCH_8_R)
        with Locations((15, 10.386894075)):
            Circle(SKETCH_8_R)
    extrude(amount=-CUT_EXTRUDE_5_DEPTH, mode=Mode.SUBTRACT)

    # 草图9 → 凸台-拉伸3 (add)
    with BuildSketch(Plane(origin=(0, 3, 0), x_dir=(1, 0, 0), z_dir=(0, 1, 0))):
        with Locations((21, -10)):
            Rectangle(SKETCH_9_W, SKETCH_9_H)
    extrude(amount=EXTRUDE_3_DEPTH)

    # 草图10 → 切除-拉伸6 (cut)
    with BuildSketch(Plane.ZY.offset(-19)):
        with Locations((10, 15.5)):
            Circle(SKETCH_10_R)
    extrude(amount=-CUT_EXTRUDE_6_DEPTH, mode=Mode.SUBTRACT)

    # 草图11 → 切除-拉伸7 (cut)
    with BuildSketch(Plane.ZY.offset(-19)):
        with Locations((10, 15.4)):
            Rectangle(SKETCH_11_W, SKETCH_11_H)
    extrude(amount=-CUT_EXTRUDE_7_DEPTH, mode=Mode.SUBTRACT)

    # 草图12 → 切除-拉伸8 (cut)
    with BuildSketch(Plane.ZY.offset(-19)):
        with Locations((10, 22.9)):
            Circle(SKETCH_12_R)
        with Locations((10, 7.9)):
            Circle(SKETCH_12_R)
    extrude(amount=-CUT_EXTRUDE_8_DEPTH, mode=Mode.SUBTRACT)


solid = part.part
